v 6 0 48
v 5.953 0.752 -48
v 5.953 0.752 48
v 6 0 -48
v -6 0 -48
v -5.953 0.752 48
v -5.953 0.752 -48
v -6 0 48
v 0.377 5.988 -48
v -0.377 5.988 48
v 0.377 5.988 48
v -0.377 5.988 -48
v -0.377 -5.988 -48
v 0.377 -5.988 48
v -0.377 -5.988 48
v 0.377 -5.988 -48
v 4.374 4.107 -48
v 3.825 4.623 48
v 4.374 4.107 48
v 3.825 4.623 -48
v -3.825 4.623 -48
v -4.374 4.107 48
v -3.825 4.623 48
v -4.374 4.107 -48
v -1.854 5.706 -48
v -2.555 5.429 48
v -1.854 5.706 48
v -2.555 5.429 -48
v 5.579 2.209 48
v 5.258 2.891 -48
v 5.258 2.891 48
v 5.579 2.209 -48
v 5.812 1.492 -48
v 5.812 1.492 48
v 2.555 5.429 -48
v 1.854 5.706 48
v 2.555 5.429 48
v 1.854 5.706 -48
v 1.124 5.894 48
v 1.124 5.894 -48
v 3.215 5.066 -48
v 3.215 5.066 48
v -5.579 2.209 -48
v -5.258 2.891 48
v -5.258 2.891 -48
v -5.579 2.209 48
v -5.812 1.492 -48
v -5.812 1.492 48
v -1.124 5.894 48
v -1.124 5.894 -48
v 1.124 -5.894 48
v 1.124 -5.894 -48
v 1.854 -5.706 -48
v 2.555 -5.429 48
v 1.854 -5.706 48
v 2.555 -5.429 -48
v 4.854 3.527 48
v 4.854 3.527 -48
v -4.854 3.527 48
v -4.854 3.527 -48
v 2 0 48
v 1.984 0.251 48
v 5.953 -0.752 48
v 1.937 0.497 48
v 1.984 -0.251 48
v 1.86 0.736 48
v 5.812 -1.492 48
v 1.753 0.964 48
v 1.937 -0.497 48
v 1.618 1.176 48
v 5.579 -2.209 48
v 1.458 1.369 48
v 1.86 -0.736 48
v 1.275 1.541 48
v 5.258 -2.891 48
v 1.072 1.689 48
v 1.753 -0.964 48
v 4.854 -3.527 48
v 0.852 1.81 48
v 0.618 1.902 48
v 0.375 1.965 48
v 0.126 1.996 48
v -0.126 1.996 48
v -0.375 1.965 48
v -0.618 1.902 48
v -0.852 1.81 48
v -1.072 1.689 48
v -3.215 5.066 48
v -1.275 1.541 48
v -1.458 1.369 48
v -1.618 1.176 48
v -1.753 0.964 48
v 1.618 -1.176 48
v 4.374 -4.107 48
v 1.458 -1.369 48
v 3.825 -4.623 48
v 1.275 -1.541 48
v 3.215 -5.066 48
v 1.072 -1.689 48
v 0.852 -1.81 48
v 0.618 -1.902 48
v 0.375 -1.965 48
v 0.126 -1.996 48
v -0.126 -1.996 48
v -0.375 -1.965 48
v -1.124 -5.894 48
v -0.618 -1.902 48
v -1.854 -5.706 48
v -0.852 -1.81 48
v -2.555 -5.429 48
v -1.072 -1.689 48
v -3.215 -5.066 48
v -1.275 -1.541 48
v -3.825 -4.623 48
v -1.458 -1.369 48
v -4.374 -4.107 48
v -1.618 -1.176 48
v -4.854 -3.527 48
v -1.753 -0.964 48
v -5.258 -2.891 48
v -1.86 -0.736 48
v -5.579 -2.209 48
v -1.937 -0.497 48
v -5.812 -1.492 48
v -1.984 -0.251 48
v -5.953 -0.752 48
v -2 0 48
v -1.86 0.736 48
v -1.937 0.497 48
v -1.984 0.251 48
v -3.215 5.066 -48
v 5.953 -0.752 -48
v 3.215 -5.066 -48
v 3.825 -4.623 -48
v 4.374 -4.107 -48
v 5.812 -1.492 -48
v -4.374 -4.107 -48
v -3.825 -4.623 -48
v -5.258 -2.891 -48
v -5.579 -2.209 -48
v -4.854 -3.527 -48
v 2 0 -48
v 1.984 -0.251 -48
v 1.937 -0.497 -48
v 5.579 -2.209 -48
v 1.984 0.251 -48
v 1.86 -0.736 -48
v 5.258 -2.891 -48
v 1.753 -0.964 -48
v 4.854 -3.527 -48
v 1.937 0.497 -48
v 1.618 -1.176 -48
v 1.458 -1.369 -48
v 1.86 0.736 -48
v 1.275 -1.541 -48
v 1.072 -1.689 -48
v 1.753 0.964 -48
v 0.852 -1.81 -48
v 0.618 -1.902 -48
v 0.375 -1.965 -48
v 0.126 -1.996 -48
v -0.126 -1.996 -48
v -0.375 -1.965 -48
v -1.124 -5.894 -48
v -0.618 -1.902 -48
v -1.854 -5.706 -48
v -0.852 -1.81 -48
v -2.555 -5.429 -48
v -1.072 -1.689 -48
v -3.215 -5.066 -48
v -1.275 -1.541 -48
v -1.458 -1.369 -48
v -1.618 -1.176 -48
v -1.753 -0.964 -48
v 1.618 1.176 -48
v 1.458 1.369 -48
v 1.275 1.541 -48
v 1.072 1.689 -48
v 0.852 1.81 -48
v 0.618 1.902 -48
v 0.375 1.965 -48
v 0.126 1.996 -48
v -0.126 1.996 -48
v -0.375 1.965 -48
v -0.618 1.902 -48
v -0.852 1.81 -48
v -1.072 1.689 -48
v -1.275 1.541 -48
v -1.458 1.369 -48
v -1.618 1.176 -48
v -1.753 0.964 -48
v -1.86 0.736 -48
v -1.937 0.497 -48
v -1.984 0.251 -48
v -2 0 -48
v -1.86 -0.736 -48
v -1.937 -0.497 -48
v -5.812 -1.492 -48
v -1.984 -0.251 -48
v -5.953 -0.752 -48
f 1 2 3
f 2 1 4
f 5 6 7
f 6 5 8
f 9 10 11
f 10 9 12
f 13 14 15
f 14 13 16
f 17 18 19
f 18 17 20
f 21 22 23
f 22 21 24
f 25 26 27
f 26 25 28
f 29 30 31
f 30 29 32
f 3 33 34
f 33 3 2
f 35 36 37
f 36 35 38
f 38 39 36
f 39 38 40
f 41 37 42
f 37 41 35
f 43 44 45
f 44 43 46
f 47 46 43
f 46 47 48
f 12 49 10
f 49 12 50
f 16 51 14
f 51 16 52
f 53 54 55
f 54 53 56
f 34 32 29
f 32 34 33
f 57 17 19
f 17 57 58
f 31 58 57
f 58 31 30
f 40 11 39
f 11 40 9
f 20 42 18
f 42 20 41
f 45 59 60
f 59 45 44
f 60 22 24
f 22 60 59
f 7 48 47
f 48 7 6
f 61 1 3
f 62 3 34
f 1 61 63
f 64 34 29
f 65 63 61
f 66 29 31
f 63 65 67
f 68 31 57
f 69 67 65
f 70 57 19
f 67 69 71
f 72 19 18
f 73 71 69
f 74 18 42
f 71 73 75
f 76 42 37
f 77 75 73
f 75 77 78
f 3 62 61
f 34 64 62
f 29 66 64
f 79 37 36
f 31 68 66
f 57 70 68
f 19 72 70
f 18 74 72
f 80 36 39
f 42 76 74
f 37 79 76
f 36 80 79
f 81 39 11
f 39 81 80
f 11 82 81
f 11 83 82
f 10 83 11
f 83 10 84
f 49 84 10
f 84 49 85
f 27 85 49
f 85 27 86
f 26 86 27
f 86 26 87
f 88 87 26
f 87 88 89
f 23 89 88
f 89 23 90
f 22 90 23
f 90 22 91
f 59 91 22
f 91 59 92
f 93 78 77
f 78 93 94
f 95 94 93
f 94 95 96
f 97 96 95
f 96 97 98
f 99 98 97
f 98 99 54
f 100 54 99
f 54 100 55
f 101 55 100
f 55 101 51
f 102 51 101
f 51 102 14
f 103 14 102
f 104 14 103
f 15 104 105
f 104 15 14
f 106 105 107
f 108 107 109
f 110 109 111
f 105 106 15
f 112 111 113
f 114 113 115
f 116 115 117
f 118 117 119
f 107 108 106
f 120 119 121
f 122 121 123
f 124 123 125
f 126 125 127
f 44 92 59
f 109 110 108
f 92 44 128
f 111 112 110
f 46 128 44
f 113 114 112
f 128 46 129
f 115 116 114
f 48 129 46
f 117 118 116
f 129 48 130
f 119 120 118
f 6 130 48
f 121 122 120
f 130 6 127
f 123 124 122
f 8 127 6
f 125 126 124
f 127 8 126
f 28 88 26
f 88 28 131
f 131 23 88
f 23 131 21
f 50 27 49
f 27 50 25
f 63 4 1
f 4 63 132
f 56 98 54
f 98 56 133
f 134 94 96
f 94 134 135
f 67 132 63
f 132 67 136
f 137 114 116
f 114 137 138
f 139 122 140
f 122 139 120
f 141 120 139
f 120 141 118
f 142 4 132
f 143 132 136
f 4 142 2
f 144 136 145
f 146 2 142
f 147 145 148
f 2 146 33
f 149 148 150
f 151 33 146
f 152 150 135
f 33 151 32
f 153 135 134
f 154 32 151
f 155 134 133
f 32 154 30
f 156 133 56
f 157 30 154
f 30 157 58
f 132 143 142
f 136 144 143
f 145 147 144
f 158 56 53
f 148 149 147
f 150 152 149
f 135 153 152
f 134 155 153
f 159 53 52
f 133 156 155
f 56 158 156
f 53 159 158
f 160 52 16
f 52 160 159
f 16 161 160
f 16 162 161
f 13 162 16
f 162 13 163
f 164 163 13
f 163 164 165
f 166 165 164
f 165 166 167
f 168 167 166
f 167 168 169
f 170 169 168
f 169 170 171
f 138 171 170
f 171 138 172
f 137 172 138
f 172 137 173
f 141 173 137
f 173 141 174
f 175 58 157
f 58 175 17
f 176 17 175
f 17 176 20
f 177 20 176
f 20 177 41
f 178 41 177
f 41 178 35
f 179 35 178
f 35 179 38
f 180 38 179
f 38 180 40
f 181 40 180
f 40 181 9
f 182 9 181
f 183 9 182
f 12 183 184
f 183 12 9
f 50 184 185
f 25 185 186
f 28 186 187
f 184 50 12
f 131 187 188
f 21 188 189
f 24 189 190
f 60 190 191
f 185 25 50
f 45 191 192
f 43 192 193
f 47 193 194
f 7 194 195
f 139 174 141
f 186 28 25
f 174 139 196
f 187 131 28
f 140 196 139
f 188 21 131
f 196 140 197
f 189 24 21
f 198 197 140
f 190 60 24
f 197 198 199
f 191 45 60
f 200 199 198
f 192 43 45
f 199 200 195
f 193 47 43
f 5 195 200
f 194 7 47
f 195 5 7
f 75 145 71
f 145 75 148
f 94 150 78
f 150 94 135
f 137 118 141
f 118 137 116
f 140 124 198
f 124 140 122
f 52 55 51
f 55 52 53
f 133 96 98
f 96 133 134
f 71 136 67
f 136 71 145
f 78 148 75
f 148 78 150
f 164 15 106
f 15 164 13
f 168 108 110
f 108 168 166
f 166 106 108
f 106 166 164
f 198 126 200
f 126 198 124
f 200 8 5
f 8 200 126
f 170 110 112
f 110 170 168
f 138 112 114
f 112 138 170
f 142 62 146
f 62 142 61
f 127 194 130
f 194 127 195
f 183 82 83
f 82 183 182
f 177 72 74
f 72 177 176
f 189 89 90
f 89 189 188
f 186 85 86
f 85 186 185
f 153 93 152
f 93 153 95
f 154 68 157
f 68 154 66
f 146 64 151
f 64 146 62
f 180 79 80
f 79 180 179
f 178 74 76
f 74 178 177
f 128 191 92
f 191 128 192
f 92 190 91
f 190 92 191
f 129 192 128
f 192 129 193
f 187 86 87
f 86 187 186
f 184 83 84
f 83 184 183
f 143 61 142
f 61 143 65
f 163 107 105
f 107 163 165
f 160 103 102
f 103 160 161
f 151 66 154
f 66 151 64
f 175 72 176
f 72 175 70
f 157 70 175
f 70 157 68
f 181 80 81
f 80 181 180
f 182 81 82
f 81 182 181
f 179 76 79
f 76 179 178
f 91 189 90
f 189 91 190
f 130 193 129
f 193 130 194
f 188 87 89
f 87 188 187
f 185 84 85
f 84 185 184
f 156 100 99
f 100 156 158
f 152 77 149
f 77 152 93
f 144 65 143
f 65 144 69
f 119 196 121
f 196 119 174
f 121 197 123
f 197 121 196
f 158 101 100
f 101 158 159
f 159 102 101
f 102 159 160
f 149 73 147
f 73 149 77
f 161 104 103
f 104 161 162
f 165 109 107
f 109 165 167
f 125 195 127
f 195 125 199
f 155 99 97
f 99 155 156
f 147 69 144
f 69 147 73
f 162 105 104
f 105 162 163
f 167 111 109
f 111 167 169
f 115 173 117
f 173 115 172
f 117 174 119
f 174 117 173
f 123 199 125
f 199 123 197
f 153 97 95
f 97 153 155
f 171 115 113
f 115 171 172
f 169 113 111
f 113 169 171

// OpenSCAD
$fn = 50;


difference() {
	union() {
		translate(v = [0, 0, -48.0000000000]) {
			cylinder(h = 96, r = 6.0000000000);
		}
	}
	union() {
		translate(v = [0, 0, -100.0000000000]) {
			cylinder(h = 200, r = 2);
		}
	}
}
